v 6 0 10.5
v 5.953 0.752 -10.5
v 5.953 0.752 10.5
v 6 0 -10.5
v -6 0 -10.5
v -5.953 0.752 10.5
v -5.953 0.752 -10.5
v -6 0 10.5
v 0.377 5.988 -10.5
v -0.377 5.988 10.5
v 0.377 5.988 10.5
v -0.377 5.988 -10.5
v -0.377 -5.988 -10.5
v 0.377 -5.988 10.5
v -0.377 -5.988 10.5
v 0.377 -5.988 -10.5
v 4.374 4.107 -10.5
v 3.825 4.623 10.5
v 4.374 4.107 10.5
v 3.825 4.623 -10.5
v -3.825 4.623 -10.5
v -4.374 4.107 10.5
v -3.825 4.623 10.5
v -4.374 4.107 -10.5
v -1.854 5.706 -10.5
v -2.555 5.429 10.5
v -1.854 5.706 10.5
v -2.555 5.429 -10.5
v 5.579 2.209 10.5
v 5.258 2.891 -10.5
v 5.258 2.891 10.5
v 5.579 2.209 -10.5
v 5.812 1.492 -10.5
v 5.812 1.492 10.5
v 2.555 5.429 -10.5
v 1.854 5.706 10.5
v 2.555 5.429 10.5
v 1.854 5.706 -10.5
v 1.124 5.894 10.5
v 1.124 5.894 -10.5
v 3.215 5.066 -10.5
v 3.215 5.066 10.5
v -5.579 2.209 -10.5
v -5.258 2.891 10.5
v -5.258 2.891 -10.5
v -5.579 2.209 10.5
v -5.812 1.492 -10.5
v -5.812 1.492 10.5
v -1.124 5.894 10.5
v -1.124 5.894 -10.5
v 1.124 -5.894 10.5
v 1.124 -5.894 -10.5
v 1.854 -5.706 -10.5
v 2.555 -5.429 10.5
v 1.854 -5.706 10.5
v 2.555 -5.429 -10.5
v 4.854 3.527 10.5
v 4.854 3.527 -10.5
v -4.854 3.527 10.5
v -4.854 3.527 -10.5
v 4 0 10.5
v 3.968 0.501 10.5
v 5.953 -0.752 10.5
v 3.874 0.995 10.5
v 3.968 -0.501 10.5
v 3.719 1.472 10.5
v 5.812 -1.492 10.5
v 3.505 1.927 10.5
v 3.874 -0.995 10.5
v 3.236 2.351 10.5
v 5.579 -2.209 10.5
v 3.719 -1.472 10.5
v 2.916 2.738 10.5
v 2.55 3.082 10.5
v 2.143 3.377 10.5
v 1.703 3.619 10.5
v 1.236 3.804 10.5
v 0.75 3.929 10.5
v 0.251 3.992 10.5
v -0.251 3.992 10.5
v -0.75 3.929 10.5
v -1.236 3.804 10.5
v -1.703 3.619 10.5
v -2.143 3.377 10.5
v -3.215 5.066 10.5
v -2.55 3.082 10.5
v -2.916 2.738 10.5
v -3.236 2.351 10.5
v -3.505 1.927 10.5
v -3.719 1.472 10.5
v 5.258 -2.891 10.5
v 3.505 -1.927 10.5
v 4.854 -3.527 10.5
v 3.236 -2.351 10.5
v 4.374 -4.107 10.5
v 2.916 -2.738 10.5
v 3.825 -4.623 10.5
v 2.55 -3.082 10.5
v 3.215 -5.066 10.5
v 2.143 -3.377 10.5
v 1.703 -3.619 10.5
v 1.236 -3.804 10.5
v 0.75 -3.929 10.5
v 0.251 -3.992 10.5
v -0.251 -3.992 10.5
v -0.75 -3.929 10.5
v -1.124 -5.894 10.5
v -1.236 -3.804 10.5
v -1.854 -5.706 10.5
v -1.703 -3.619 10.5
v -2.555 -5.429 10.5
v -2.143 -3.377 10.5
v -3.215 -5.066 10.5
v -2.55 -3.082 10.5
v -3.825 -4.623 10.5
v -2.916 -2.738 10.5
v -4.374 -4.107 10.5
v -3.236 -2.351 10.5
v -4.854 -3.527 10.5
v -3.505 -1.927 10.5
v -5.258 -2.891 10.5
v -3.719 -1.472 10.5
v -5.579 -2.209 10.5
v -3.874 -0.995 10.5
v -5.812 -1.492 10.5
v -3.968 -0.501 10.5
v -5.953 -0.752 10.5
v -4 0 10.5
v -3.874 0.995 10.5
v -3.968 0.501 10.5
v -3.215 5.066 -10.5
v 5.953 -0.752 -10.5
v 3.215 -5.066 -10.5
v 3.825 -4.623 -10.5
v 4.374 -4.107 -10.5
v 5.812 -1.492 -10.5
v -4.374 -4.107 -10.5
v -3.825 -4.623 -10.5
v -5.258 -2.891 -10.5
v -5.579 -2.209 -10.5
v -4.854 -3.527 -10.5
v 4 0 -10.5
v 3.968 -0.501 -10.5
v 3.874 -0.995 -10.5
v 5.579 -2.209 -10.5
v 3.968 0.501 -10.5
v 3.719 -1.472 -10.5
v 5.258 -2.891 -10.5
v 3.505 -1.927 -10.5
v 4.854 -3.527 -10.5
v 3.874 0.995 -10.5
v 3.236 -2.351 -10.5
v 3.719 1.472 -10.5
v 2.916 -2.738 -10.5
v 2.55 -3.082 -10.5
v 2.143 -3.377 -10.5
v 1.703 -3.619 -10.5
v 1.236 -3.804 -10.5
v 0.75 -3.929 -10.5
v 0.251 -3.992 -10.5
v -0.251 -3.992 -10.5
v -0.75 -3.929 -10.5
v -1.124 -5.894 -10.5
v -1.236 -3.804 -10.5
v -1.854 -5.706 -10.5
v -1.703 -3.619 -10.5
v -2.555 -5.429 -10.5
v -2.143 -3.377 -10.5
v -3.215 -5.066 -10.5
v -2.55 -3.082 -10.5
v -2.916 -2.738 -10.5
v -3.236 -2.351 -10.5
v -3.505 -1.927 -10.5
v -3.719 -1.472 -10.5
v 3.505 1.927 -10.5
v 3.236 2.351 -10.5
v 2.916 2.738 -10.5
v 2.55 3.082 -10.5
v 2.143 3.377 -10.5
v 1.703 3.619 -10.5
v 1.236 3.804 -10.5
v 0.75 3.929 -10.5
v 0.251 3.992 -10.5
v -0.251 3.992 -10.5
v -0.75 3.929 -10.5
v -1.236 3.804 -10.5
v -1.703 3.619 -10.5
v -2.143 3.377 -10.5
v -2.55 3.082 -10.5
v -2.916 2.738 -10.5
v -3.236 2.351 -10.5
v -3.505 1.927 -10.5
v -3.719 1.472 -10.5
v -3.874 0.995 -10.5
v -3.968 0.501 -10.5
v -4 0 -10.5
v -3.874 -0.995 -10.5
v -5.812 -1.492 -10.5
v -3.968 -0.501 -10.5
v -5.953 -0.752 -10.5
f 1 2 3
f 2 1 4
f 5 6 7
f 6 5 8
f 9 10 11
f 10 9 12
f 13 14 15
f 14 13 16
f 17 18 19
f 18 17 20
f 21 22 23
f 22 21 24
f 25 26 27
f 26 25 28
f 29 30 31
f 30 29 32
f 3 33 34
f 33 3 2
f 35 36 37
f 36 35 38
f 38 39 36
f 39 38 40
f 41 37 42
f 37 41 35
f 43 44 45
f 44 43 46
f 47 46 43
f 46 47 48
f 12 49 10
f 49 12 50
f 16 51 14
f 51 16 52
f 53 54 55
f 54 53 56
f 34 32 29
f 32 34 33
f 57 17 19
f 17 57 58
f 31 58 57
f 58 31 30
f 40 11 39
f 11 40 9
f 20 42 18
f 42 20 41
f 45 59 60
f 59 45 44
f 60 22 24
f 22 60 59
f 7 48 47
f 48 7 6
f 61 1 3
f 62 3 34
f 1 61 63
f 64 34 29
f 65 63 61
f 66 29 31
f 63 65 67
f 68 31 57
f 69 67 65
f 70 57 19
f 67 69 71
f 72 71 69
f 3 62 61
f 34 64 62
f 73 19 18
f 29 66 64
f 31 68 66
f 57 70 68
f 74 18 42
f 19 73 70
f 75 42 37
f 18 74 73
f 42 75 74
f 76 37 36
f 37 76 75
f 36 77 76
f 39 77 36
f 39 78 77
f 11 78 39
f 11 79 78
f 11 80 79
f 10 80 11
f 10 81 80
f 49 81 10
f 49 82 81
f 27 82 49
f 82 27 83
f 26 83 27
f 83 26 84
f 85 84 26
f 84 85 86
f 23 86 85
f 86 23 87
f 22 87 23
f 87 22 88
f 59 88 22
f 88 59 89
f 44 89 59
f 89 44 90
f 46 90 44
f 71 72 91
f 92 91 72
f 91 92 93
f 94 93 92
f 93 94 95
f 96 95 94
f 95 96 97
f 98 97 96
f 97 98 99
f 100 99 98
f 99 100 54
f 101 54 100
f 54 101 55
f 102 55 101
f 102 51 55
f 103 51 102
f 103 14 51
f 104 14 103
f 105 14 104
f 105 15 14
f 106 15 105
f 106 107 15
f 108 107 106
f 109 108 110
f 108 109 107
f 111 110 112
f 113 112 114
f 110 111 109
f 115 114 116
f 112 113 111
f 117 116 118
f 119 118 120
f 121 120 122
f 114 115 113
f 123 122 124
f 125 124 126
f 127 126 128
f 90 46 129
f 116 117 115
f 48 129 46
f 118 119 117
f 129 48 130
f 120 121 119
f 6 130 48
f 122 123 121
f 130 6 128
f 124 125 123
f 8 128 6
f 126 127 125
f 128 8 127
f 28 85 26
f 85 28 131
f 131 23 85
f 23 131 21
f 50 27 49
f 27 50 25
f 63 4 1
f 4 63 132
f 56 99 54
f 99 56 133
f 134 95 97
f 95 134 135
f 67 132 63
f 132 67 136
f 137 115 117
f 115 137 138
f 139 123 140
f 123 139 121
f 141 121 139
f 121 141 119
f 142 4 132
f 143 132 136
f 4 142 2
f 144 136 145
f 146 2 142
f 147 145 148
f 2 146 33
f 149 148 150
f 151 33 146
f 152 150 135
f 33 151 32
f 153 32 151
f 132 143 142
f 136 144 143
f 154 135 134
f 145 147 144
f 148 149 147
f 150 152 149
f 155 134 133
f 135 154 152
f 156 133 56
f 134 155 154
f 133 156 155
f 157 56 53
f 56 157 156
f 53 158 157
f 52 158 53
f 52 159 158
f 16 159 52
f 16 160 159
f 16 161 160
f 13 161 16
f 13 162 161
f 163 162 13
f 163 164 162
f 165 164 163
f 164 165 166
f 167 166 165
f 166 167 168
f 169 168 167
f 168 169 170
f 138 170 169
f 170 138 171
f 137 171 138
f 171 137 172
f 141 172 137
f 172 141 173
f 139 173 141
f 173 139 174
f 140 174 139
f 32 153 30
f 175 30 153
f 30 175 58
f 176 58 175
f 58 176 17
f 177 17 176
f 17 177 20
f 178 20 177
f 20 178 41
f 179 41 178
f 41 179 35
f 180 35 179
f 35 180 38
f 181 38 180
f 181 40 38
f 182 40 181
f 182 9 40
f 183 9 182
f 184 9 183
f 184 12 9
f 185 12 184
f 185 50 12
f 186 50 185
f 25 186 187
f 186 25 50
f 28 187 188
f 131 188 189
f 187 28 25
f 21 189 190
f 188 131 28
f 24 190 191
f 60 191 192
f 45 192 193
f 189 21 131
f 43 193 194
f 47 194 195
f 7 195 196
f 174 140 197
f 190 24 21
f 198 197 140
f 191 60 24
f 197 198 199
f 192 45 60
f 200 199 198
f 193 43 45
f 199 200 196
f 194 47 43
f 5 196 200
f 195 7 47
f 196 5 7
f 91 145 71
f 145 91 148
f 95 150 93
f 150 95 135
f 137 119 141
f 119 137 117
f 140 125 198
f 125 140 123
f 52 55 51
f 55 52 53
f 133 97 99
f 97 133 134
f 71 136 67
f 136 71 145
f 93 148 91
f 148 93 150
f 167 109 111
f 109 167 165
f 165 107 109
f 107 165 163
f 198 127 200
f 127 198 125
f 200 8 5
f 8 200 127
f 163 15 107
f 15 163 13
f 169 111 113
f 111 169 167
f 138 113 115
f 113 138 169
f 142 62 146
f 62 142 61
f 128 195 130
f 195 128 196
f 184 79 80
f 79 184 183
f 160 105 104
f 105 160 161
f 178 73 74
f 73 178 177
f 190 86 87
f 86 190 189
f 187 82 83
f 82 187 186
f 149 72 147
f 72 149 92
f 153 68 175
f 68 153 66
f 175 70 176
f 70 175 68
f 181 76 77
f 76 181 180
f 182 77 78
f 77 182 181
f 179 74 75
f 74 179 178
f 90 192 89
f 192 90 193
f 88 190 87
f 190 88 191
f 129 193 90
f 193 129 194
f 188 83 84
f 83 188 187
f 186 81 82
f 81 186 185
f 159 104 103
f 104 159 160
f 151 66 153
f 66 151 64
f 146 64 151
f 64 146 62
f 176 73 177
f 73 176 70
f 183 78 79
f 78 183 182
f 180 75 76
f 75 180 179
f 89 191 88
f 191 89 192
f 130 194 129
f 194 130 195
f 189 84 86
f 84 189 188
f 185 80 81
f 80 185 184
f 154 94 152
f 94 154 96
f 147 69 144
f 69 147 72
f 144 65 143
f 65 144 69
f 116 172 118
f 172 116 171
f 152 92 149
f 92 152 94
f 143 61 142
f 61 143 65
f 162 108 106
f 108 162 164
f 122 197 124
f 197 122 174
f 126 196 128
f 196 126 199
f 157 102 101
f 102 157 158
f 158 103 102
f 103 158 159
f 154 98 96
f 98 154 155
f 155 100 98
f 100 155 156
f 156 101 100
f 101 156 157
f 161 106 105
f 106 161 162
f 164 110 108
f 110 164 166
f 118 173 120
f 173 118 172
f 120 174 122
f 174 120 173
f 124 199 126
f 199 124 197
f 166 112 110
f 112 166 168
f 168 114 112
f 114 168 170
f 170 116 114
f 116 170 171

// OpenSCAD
$fn = 50;


difference() {
	union() {
		translate(v = [0, 0, -10.5000000000]) {
			cylinder(h = 21, r = 6.0000000000);
		}
	}
	union() {
		translate(v = [0, 0, -100.0000000000]) {
			cylinder(h = 200, r = 4);
		}
	}
}
